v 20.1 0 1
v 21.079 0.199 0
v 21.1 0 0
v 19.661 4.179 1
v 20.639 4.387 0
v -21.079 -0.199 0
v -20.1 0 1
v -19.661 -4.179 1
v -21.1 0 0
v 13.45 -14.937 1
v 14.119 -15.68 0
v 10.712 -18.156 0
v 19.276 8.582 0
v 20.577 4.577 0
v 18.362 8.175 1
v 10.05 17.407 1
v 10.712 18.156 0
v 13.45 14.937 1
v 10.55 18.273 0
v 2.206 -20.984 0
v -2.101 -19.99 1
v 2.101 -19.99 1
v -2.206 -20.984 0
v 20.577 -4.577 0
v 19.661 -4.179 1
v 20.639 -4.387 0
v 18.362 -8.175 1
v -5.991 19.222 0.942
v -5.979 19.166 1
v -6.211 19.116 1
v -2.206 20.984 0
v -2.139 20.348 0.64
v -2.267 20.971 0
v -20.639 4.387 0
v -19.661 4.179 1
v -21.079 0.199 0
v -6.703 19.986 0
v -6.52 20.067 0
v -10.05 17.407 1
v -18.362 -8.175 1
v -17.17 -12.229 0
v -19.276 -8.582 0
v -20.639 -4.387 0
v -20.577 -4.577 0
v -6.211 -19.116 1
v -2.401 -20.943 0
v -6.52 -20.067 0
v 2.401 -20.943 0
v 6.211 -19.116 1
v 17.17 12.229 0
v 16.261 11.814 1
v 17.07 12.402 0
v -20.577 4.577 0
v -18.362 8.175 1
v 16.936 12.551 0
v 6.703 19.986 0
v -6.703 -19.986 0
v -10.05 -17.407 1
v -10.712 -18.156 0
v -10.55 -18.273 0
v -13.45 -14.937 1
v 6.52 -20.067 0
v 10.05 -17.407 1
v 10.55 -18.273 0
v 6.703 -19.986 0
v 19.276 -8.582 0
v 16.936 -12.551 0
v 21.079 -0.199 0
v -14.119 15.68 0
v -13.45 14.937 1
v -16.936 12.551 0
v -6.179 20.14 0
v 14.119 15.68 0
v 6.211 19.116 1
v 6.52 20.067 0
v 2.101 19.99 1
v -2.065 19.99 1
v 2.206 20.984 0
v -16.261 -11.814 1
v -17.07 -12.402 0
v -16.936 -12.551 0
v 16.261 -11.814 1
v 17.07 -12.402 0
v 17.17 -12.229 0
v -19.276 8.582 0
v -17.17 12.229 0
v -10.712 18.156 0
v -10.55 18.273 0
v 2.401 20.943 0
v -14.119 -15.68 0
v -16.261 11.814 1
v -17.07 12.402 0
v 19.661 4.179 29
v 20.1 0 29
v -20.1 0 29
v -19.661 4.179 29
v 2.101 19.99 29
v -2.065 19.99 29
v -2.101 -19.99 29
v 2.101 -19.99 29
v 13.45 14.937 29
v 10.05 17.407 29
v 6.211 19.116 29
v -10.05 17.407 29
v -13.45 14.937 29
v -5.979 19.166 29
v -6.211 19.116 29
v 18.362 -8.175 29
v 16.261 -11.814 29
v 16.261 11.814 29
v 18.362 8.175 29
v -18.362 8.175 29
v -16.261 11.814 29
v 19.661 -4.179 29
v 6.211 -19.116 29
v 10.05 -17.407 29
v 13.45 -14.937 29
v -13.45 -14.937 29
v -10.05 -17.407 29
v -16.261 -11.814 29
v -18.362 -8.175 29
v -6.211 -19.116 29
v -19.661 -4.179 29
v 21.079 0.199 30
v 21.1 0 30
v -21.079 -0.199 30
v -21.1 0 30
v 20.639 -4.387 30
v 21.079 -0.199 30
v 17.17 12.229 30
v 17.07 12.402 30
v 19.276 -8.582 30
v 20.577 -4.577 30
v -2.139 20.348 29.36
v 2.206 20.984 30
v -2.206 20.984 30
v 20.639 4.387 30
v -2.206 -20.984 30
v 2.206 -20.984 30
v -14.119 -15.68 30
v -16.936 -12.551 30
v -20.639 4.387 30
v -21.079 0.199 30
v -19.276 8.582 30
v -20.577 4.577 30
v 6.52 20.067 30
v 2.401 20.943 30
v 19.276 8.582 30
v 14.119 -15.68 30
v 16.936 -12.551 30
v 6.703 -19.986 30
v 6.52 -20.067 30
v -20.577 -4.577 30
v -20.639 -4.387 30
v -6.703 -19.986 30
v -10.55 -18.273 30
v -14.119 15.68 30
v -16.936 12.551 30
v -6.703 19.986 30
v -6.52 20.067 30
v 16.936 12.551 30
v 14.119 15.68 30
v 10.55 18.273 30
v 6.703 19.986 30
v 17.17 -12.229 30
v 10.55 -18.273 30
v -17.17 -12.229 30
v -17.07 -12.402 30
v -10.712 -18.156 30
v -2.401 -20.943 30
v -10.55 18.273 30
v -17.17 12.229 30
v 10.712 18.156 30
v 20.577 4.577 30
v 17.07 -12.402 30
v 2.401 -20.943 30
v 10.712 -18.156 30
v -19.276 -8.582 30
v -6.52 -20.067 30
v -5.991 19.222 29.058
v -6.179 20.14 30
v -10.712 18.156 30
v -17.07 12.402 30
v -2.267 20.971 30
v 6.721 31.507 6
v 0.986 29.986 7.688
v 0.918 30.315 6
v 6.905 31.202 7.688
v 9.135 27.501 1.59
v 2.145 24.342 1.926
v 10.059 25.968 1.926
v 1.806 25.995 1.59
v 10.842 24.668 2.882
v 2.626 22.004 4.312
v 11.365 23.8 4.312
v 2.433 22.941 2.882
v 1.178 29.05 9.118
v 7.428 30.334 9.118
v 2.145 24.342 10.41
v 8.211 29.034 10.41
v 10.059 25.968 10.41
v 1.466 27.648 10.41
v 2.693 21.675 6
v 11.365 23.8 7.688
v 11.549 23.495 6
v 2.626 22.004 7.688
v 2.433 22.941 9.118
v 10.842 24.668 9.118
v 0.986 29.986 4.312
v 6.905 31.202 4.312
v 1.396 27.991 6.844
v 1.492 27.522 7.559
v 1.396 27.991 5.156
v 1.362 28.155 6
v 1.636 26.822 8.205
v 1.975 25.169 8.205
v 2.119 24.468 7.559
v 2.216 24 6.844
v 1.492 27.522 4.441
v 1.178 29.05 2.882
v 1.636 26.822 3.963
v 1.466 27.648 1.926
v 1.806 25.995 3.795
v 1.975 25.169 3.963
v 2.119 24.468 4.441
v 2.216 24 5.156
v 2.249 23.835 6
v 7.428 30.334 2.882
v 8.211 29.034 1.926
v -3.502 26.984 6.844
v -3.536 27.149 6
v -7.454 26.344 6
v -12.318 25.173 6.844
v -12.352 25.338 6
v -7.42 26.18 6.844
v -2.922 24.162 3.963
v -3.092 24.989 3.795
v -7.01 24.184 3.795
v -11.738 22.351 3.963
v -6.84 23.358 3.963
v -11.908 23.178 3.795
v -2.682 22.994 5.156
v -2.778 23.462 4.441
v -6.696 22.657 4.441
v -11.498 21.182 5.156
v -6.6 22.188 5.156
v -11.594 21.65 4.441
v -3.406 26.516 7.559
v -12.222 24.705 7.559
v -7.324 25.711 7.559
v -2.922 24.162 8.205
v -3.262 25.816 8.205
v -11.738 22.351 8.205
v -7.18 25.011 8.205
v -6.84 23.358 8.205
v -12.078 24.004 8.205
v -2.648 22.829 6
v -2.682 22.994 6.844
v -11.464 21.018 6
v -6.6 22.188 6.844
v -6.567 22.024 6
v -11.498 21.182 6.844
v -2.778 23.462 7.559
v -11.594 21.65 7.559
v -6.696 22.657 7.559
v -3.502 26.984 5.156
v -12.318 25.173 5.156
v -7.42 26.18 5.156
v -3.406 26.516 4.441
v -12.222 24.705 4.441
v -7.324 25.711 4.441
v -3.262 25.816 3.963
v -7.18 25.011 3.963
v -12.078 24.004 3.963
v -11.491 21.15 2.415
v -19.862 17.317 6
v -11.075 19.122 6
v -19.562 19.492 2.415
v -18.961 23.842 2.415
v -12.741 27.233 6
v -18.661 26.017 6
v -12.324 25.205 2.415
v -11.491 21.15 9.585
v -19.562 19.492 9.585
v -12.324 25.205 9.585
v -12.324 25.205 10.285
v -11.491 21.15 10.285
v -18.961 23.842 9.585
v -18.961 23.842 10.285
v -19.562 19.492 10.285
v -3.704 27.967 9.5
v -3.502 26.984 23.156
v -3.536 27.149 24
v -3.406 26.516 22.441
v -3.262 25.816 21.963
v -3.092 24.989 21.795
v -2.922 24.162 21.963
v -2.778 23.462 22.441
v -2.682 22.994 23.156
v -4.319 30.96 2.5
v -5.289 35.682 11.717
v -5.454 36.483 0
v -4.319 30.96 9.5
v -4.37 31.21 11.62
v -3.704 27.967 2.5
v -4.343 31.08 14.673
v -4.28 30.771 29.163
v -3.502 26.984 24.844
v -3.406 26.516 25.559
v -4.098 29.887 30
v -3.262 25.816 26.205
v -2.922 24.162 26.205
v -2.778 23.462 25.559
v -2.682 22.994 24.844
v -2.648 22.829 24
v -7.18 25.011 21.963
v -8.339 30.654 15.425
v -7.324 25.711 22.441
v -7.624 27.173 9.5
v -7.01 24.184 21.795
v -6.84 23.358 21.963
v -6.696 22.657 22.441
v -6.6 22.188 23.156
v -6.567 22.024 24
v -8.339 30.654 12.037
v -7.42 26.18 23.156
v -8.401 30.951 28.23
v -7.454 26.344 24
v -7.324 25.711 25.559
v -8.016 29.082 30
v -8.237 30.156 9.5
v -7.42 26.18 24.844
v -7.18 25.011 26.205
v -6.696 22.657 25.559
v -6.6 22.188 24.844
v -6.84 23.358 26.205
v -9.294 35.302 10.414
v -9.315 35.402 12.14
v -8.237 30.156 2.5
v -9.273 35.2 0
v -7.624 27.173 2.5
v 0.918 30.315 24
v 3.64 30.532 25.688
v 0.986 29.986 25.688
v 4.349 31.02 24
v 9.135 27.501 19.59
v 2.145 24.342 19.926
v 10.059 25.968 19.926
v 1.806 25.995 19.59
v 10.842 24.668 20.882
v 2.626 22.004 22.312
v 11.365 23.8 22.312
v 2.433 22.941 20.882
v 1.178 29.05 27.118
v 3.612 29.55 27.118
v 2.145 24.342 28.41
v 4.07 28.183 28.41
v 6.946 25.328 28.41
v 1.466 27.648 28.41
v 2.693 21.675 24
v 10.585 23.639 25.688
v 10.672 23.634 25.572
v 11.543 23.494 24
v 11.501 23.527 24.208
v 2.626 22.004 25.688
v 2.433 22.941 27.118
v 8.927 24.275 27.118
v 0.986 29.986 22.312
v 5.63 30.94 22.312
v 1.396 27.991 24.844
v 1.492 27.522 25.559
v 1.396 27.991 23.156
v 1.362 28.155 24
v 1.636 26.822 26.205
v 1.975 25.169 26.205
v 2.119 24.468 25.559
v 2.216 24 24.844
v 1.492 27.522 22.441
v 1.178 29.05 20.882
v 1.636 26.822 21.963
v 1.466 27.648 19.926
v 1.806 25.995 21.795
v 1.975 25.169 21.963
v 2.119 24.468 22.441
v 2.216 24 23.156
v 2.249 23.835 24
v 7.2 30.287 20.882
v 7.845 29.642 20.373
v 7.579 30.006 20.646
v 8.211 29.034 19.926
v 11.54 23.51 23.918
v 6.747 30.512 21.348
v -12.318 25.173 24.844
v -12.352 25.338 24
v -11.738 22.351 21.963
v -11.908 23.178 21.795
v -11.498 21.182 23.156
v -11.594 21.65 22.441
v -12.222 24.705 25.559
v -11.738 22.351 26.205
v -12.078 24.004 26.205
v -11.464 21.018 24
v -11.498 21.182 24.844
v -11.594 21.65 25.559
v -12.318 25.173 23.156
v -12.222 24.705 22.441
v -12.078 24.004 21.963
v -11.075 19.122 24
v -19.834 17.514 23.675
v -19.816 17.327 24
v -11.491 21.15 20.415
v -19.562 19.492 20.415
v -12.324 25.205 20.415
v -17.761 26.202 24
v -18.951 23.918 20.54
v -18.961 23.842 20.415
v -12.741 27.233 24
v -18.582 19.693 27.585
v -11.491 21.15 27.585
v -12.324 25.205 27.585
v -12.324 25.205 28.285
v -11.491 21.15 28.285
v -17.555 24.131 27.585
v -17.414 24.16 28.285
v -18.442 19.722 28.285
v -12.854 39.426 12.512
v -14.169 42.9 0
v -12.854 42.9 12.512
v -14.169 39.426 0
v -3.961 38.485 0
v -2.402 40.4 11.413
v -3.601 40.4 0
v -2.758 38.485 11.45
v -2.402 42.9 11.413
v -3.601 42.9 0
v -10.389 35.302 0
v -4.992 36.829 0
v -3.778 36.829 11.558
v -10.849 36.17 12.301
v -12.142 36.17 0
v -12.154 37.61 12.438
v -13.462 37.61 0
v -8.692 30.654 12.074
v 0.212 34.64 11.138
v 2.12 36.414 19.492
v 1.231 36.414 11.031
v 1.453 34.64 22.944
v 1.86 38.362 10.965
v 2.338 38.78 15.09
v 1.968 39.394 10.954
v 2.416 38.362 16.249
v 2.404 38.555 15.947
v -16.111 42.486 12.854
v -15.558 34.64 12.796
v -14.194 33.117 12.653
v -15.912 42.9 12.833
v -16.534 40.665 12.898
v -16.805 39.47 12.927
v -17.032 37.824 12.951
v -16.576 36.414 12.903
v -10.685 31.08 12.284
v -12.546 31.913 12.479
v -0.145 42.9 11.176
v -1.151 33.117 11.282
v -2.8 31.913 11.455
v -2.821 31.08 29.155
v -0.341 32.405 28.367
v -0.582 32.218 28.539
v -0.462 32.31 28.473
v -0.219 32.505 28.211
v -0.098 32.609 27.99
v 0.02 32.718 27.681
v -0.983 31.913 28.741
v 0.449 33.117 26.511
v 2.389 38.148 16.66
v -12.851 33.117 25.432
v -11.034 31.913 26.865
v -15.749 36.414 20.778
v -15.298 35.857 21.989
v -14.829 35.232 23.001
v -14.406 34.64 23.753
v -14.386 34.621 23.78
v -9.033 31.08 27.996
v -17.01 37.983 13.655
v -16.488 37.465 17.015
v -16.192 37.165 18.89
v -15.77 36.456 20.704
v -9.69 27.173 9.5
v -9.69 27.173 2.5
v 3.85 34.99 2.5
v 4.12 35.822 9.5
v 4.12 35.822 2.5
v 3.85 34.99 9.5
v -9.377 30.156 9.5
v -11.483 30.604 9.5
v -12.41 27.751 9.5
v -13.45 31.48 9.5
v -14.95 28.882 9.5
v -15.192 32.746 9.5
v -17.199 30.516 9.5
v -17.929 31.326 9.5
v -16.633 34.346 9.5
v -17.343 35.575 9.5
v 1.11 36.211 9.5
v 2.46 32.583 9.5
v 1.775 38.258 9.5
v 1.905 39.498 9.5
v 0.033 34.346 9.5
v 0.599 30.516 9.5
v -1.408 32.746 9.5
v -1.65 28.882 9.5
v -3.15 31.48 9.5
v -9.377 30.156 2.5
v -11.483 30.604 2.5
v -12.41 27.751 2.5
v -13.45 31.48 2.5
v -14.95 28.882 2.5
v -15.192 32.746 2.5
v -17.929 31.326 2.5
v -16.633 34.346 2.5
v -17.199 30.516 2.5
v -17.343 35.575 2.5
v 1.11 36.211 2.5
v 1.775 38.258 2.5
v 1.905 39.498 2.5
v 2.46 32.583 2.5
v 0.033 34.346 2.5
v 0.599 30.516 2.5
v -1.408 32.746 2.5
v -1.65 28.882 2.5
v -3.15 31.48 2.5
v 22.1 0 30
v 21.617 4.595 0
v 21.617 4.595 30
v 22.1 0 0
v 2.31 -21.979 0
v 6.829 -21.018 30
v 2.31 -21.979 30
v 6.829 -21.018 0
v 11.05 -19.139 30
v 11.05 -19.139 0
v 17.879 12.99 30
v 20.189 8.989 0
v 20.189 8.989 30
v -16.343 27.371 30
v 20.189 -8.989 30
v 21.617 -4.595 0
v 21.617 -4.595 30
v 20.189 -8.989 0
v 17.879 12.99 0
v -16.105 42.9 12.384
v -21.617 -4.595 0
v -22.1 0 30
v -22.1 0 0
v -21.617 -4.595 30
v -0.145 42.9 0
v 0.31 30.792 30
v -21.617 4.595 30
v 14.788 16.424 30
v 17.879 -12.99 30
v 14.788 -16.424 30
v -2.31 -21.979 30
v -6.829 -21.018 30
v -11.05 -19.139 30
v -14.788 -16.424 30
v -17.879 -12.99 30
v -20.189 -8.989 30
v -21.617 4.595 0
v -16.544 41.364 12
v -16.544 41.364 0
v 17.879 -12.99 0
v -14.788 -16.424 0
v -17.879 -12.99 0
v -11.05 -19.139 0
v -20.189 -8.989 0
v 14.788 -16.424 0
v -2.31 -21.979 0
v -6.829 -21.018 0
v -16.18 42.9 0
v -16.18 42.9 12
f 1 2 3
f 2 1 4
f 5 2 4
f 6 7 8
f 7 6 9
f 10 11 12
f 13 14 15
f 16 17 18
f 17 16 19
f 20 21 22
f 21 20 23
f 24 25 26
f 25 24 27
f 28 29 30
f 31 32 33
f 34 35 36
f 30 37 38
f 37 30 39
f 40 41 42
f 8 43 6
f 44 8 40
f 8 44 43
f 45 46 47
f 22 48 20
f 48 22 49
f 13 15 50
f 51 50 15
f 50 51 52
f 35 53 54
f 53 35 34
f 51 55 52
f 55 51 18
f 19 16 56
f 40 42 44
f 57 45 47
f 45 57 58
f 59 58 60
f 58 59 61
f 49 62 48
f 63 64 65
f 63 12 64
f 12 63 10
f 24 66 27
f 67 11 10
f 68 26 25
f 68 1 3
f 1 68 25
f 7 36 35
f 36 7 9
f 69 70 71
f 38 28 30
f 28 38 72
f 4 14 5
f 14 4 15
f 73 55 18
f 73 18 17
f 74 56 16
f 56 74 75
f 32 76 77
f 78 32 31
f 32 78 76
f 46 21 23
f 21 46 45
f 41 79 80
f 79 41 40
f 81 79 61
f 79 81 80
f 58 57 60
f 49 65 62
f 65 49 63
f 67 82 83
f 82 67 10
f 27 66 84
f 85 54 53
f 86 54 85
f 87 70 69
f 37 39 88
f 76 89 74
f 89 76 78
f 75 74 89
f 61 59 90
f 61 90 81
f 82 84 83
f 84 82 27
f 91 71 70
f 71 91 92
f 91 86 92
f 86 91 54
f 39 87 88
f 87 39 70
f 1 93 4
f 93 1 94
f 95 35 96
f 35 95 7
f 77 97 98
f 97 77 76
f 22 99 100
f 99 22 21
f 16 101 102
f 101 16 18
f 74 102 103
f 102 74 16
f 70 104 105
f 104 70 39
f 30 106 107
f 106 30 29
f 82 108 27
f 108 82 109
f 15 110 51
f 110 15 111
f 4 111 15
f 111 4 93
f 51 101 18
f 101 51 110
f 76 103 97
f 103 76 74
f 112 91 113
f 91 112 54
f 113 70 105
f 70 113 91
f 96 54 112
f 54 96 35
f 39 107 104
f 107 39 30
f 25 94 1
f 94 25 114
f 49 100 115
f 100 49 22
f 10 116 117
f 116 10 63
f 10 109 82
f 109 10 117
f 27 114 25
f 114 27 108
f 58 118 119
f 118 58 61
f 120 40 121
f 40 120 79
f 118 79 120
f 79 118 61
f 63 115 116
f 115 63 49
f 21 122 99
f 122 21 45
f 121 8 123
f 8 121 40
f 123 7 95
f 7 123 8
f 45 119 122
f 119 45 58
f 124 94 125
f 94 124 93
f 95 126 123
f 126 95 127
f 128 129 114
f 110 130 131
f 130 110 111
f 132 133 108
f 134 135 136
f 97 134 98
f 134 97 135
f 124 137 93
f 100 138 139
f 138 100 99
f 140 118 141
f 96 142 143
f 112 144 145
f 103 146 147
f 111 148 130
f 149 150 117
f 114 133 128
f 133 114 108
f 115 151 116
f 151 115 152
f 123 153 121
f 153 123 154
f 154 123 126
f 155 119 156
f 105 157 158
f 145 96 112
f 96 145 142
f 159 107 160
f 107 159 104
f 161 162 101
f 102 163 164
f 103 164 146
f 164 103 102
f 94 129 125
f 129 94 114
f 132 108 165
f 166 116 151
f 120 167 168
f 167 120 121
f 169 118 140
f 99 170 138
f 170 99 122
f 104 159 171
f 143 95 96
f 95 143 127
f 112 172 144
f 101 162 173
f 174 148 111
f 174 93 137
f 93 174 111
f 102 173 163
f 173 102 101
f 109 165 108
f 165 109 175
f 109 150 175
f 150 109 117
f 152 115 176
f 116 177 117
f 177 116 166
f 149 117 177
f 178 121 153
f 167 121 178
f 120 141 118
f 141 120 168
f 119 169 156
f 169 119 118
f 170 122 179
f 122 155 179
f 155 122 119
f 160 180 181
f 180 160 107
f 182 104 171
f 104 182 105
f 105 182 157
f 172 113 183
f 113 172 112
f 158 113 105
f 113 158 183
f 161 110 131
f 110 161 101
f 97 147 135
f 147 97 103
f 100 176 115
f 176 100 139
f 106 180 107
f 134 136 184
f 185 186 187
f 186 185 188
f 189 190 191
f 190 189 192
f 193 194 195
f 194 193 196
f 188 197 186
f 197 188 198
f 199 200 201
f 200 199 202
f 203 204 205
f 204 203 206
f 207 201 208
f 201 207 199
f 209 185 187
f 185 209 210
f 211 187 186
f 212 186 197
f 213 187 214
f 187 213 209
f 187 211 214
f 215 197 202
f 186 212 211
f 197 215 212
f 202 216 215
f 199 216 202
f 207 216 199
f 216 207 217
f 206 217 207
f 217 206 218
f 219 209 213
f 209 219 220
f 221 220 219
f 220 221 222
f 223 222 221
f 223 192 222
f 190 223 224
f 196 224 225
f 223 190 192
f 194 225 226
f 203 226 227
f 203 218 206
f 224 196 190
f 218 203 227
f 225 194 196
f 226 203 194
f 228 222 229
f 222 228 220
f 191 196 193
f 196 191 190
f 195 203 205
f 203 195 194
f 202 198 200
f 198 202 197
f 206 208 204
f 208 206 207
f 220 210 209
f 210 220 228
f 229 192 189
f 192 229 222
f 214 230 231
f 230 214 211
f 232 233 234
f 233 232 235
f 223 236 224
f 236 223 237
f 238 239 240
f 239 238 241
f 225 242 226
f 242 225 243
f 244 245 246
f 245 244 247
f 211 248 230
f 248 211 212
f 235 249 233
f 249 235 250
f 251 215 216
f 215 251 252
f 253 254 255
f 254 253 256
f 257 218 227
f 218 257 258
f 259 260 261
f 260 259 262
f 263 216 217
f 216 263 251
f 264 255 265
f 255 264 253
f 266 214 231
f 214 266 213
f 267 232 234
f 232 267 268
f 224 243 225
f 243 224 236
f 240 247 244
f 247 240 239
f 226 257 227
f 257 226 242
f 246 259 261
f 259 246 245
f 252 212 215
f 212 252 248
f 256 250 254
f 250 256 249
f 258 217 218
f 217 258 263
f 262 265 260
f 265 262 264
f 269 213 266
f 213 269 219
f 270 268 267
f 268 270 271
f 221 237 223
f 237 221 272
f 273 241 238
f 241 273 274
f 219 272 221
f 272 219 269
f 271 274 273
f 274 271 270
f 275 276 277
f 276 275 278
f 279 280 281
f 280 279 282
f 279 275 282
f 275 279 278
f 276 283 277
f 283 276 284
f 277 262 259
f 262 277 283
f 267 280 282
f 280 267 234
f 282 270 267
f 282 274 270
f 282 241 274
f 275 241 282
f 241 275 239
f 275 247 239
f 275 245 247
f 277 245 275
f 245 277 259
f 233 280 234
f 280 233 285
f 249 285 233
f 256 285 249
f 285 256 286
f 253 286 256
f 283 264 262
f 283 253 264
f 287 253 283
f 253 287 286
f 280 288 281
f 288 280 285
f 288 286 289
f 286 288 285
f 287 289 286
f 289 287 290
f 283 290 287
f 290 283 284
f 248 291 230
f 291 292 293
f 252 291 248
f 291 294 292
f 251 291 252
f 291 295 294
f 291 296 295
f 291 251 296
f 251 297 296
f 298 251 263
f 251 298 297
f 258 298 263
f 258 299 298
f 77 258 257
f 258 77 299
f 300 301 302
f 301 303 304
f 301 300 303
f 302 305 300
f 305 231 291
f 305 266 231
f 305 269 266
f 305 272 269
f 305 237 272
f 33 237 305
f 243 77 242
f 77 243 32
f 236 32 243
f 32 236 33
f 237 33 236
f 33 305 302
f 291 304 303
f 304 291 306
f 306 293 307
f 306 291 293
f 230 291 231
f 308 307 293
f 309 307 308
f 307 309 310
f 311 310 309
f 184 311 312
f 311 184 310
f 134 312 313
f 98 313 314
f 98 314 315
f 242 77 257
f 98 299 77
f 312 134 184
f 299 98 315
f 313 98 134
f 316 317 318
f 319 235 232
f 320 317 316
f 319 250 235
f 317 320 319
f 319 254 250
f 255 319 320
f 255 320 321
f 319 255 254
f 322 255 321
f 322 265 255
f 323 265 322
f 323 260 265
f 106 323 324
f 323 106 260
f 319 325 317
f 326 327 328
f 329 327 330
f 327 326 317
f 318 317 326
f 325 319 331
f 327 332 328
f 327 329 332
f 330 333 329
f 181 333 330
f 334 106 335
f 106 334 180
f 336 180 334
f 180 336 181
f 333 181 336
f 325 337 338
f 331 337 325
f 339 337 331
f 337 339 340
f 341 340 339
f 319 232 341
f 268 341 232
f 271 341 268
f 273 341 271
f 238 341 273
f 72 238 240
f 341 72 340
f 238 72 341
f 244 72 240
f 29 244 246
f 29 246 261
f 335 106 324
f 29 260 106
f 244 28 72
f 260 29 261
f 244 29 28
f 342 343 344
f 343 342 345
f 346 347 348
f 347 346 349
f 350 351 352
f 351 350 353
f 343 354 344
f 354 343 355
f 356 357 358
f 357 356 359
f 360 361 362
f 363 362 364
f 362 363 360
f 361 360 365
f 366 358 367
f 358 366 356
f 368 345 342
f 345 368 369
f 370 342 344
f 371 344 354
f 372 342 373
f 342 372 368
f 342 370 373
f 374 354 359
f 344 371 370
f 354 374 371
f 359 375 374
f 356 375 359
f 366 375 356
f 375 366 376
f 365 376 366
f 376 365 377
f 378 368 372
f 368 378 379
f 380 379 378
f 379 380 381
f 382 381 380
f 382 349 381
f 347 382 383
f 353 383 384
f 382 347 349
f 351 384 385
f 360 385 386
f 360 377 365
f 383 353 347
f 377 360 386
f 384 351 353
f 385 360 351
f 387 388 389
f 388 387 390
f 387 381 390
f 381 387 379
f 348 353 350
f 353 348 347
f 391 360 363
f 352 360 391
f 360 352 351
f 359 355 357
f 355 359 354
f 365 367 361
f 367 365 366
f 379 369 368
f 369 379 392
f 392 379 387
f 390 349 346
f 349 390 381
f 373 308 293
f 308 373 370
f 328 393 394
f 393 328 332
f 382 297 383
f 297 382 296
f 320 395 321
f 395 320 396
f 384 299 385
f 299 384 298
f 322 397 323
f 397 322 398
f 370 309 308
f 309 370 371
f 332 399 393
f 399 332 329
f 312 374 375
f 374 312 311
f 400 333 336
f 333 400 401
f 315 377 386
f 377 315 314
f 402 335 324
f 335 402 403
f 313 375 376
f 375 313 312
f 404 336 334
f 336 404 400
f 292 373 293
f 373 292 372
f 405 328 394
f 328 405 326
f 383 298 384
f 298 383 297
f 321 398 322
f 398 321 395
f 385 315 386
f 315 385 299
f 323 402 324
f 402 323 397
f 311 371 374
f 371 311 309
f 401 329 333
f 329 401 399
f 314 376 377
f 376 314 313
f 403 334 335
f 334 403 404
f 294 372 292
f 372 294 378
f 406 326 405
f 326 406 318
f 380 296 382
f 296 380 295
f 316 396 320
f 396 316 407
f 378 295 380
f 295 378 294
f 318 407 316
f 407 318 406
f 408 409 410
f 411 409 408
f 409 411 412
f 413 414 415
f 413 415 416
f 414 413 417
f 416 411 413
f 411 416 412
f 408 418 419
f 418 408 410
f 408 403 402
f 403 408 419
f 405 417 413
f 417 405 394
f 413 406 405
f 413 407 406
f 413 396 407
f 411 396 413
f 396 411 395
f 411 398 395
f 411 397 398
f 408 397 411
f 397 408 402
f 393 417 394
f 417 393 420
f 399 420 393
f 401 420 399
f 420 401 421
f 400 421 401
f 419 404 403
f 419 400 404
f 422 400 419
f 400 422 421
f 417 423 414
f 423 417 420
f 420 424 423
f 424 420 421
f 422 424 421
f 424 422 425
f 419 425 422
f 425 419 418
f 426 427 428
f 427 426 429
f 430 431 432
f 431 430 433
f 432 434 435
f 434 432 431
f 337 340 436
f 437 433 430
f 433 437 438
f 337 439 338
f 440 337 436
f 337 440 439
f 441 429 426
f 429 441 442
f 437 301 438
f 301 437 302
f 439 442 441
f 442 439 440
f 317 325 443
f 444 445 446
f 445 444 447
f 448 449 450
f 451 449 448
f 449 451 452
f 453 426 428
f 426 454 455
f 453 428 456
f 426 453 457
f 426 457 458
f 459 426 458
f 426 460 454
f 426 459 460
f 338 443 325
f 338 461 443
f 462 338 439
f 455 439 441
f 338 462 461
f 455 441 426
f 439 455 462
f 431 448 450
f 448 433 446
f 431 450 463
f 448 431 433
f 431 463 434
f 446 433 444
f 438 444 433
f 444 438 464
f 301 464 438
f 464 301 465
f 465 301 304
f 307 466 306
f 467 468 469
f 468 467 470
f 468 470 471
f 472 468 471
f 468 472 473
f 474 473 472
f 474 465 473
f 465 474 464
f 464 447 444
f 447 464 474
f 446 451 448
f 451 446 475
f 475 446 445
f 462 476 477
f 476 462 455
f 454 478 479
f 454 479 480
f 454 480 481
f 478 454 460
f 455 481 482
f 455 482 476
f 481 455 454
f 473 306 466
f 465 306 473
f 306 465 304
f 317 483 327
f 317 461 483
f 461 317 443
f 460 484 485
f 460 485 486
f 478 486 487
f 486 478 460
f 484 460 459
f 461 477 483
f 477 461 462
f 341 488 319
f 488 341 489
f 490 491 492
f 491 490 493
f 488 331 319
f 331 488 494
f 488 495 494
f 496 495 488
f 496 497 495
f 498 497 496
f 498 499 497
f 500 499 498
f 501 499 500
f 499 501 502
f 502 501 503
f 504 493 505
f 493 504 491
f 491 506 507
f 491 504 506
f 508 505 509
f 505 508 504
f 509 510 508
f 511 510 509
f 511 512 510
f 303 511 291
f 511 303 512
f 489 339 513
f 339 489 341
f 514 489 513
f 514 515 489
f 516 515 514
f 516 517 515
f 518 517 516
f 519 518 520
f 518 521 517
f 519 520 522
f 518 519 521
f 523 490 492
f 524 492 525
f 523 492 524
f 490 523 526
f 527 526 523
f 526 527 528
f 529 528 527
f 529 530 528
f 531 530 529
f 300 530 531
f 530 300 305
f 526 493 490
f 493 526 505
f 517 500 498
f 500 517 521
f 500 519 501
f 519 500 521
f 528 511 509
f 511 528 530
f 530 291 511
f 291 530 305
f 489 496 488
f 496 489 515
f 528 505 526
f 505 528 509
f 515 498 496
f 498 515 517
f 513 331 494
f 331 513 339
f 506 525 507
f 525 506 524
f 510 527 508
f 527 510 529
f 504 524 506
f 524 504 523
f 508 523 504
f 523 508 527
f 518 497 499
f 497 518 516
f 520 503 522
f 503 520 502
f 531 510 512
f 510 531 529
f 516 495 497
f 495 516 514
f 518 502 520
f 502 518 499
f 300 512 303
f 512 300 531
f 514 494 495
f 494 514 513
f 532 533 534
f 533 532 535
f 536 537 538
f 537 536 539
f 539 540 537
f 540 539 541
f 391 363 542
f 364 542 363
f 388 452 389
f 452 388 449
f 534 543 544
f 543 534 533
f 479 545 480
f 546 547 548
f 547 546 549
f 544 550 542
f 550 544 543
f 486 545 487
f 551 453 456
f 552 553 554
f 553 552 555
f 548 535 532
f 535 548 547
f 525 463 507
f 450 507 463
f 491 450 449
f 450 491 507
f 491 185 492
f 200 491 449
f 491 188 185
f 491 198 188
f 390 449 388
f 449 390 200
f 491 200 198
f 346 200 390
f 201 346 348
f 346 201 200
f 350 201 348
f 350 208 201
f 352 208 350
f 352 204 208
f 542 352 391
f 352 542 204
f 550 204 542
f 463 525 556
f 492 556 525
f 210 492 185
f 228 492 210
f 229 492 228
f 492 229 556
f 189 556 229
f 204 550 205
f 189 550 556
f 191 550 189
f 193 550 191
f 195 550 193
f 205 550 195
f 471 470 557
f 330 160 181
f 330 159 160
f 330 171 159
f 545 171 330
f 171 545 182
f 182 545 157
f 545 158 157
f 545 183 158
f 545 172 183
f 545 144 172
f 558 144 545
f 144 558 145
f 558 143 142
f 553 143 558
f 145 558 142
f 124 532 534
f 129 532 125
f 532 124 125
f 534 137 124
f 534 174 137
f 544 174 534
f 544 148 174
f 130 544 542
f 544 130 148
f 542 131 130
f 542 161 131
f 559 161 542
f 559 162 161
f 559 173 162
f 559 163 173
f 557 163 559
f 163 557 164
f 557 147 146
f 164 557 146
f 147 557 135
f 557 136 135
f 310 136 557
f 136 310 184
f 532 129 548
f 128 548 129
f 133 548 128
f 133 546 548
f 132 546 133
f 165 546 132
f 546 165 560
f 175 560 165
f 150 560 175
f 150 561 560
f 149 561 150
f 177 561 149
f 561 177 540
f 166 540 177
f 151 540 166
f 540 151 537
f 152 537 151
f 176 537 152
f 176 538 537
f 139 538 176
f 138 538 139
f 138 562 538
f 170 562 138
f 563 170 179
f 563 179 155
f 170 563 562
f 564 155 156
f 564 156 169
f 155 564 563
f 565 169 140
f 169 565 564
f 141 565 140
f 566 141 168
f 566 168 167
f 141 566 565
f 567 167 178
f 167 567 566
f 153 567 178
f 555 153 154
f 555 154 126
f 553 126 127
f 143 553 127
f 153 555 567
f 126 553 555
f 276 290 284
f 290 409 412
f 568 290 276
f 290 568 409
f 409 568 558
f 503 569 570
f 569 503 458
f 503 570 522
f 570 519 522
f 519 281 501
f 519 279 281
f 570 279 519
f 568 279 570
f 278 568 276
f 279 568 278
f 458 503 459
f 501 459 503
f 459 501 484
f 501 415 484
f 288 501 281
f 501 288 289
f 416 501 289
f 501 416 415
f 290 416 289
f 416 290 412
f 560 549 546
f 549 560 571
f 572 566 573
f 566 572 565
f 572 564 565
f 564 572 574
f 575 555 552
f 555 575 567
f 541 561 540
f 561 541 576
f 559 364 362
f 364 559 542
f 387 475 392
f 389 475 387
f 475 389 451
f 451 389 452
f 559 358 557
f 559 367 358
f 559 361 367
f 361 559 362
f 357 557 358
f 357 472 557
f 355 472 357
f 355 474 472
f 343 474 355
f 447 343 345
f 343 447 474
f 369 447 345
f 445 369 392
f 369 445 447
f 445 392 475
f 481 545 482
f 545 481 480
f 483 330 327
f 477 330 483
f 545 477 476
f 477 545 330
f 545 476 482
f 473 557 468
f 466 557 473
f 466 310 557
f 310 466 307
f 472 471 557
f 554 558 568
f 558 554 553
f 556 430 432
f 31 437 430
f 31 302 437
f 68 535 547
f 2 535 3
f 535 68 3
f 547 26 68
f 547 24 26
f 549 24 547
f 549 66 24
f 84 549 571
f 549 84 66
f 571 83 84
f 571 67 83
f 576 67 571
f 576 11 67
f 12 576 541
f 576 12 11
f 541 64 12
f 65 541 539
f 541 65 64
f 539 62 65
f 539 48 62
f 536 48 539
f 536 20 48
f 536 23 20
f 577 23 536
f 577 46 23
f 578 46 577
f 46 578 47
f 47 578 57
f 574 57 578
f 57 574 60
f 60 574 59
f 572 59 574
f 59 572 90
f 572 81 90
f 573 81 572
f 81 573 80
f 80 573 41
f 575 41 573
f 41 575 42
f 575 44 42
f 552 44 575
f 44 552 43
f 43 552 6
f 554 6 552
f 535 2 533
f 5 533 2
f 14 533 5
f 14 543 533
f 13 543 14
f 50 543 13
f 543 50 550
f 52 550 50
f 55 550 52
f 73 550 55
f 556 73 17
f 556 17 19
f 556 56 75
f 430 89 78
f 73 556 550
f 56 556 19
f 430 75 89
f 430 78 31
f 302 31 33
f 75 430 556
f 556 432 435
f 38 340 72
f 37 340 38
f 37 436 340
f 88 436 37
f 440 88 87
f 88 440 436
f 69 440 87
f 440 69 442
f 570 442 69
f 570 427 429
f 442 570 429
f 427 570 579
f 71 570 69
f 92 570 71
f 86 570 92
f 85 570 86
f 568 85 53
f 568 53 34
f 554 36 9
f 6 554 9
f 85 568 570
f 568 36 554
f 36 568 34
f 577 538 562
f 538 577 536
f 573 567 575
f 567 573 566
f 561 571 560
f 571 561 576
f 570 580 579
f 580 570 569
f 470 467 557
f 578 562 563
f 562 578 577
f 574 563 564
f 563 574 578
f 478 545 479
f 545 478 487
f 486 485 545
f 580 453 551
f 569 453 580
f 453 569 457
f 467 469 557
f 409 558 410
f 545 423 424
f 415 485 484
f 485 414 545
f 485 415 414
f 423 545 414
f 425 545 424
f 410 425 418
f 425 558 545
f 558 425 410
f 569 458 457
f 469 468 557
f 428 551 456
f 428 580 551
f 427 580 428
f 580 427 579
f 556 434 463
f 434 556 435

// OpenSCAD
//use <../standard_optomechanics/cylinder_clamp.scad>;
//use <cylinder_clip.scad>;
use <utilities.scad>;

t = 2;
h = 12;
clamp_h = 30;
inner_r = 20.1;
rack_r = 5+0.3;

tube_to_tube = 15;
c2c_distance = (inner_r + rack_r + tube_to_tube);
//rack_angle = -90-asin( (inner_r - rack_r) / c2c_distance);

d=0.05;

module rack_frame(){
    translate([-rack_r-3,c2c_distance,0]) children();
}

module rack(){
	rack_frame() translate([0,0,h/2]) rotate([0,6,0]){
		hull() repeat([0,999,0],2) cylinder(r=rack_r,h=999*2,center=true);
        translate([0,0,h/2]) cylinder(r=rack_r+4.5,h=999);
    }
}
pinch_a = 180-atan((-rack_r-3)/c2c_distance);
union(){
	difference(){
		union(){
			hull(){ //this bit holds the rack tube
                cylinder(r=inner_r+t,h=clamp_h);
				rack_frame() cylinder(r=rack_r+3,h=h);
                rotate(pinch_a) translate([2,-inner_r-5,clamp_h/2]) cube([17,10,clamp_h],center=true);
			}
		}
        
        chamfered_hole(r=inner_r,h=clamp_h); //hole for seat tube
		rotate(pinch_a) translate([0,-inner_r-5,h/2]) rotate(90) pinch_y(4,t=5, nut_l=999,screw_l=10,extra_height=0,gap=[30,4,999]); //clamping screw
		rotate(pinch_a)translate([0,-inner_r-5,clamp_h-h/2]) rotate(90) pinch_y(4,t=5, nut_l=999, screw_l=10,extra_height=0, gap=[30,4,999]); //clamping screw

		//clearance for rack
		rack();
        //cut off so we can get the rack in
		rack_frame() translate([0,2.5+999,0]) cube([1,1,1]*999*2,center=true);
        //cut-out for the velcro tie
        rack_frame() difference(){
            translate([0,0,h/2]) cylinder(r=rack_r+8,h=h-5,center=true);
            cylinder(r=rack_r+5,h=999,center=true);
        }
	}
}
